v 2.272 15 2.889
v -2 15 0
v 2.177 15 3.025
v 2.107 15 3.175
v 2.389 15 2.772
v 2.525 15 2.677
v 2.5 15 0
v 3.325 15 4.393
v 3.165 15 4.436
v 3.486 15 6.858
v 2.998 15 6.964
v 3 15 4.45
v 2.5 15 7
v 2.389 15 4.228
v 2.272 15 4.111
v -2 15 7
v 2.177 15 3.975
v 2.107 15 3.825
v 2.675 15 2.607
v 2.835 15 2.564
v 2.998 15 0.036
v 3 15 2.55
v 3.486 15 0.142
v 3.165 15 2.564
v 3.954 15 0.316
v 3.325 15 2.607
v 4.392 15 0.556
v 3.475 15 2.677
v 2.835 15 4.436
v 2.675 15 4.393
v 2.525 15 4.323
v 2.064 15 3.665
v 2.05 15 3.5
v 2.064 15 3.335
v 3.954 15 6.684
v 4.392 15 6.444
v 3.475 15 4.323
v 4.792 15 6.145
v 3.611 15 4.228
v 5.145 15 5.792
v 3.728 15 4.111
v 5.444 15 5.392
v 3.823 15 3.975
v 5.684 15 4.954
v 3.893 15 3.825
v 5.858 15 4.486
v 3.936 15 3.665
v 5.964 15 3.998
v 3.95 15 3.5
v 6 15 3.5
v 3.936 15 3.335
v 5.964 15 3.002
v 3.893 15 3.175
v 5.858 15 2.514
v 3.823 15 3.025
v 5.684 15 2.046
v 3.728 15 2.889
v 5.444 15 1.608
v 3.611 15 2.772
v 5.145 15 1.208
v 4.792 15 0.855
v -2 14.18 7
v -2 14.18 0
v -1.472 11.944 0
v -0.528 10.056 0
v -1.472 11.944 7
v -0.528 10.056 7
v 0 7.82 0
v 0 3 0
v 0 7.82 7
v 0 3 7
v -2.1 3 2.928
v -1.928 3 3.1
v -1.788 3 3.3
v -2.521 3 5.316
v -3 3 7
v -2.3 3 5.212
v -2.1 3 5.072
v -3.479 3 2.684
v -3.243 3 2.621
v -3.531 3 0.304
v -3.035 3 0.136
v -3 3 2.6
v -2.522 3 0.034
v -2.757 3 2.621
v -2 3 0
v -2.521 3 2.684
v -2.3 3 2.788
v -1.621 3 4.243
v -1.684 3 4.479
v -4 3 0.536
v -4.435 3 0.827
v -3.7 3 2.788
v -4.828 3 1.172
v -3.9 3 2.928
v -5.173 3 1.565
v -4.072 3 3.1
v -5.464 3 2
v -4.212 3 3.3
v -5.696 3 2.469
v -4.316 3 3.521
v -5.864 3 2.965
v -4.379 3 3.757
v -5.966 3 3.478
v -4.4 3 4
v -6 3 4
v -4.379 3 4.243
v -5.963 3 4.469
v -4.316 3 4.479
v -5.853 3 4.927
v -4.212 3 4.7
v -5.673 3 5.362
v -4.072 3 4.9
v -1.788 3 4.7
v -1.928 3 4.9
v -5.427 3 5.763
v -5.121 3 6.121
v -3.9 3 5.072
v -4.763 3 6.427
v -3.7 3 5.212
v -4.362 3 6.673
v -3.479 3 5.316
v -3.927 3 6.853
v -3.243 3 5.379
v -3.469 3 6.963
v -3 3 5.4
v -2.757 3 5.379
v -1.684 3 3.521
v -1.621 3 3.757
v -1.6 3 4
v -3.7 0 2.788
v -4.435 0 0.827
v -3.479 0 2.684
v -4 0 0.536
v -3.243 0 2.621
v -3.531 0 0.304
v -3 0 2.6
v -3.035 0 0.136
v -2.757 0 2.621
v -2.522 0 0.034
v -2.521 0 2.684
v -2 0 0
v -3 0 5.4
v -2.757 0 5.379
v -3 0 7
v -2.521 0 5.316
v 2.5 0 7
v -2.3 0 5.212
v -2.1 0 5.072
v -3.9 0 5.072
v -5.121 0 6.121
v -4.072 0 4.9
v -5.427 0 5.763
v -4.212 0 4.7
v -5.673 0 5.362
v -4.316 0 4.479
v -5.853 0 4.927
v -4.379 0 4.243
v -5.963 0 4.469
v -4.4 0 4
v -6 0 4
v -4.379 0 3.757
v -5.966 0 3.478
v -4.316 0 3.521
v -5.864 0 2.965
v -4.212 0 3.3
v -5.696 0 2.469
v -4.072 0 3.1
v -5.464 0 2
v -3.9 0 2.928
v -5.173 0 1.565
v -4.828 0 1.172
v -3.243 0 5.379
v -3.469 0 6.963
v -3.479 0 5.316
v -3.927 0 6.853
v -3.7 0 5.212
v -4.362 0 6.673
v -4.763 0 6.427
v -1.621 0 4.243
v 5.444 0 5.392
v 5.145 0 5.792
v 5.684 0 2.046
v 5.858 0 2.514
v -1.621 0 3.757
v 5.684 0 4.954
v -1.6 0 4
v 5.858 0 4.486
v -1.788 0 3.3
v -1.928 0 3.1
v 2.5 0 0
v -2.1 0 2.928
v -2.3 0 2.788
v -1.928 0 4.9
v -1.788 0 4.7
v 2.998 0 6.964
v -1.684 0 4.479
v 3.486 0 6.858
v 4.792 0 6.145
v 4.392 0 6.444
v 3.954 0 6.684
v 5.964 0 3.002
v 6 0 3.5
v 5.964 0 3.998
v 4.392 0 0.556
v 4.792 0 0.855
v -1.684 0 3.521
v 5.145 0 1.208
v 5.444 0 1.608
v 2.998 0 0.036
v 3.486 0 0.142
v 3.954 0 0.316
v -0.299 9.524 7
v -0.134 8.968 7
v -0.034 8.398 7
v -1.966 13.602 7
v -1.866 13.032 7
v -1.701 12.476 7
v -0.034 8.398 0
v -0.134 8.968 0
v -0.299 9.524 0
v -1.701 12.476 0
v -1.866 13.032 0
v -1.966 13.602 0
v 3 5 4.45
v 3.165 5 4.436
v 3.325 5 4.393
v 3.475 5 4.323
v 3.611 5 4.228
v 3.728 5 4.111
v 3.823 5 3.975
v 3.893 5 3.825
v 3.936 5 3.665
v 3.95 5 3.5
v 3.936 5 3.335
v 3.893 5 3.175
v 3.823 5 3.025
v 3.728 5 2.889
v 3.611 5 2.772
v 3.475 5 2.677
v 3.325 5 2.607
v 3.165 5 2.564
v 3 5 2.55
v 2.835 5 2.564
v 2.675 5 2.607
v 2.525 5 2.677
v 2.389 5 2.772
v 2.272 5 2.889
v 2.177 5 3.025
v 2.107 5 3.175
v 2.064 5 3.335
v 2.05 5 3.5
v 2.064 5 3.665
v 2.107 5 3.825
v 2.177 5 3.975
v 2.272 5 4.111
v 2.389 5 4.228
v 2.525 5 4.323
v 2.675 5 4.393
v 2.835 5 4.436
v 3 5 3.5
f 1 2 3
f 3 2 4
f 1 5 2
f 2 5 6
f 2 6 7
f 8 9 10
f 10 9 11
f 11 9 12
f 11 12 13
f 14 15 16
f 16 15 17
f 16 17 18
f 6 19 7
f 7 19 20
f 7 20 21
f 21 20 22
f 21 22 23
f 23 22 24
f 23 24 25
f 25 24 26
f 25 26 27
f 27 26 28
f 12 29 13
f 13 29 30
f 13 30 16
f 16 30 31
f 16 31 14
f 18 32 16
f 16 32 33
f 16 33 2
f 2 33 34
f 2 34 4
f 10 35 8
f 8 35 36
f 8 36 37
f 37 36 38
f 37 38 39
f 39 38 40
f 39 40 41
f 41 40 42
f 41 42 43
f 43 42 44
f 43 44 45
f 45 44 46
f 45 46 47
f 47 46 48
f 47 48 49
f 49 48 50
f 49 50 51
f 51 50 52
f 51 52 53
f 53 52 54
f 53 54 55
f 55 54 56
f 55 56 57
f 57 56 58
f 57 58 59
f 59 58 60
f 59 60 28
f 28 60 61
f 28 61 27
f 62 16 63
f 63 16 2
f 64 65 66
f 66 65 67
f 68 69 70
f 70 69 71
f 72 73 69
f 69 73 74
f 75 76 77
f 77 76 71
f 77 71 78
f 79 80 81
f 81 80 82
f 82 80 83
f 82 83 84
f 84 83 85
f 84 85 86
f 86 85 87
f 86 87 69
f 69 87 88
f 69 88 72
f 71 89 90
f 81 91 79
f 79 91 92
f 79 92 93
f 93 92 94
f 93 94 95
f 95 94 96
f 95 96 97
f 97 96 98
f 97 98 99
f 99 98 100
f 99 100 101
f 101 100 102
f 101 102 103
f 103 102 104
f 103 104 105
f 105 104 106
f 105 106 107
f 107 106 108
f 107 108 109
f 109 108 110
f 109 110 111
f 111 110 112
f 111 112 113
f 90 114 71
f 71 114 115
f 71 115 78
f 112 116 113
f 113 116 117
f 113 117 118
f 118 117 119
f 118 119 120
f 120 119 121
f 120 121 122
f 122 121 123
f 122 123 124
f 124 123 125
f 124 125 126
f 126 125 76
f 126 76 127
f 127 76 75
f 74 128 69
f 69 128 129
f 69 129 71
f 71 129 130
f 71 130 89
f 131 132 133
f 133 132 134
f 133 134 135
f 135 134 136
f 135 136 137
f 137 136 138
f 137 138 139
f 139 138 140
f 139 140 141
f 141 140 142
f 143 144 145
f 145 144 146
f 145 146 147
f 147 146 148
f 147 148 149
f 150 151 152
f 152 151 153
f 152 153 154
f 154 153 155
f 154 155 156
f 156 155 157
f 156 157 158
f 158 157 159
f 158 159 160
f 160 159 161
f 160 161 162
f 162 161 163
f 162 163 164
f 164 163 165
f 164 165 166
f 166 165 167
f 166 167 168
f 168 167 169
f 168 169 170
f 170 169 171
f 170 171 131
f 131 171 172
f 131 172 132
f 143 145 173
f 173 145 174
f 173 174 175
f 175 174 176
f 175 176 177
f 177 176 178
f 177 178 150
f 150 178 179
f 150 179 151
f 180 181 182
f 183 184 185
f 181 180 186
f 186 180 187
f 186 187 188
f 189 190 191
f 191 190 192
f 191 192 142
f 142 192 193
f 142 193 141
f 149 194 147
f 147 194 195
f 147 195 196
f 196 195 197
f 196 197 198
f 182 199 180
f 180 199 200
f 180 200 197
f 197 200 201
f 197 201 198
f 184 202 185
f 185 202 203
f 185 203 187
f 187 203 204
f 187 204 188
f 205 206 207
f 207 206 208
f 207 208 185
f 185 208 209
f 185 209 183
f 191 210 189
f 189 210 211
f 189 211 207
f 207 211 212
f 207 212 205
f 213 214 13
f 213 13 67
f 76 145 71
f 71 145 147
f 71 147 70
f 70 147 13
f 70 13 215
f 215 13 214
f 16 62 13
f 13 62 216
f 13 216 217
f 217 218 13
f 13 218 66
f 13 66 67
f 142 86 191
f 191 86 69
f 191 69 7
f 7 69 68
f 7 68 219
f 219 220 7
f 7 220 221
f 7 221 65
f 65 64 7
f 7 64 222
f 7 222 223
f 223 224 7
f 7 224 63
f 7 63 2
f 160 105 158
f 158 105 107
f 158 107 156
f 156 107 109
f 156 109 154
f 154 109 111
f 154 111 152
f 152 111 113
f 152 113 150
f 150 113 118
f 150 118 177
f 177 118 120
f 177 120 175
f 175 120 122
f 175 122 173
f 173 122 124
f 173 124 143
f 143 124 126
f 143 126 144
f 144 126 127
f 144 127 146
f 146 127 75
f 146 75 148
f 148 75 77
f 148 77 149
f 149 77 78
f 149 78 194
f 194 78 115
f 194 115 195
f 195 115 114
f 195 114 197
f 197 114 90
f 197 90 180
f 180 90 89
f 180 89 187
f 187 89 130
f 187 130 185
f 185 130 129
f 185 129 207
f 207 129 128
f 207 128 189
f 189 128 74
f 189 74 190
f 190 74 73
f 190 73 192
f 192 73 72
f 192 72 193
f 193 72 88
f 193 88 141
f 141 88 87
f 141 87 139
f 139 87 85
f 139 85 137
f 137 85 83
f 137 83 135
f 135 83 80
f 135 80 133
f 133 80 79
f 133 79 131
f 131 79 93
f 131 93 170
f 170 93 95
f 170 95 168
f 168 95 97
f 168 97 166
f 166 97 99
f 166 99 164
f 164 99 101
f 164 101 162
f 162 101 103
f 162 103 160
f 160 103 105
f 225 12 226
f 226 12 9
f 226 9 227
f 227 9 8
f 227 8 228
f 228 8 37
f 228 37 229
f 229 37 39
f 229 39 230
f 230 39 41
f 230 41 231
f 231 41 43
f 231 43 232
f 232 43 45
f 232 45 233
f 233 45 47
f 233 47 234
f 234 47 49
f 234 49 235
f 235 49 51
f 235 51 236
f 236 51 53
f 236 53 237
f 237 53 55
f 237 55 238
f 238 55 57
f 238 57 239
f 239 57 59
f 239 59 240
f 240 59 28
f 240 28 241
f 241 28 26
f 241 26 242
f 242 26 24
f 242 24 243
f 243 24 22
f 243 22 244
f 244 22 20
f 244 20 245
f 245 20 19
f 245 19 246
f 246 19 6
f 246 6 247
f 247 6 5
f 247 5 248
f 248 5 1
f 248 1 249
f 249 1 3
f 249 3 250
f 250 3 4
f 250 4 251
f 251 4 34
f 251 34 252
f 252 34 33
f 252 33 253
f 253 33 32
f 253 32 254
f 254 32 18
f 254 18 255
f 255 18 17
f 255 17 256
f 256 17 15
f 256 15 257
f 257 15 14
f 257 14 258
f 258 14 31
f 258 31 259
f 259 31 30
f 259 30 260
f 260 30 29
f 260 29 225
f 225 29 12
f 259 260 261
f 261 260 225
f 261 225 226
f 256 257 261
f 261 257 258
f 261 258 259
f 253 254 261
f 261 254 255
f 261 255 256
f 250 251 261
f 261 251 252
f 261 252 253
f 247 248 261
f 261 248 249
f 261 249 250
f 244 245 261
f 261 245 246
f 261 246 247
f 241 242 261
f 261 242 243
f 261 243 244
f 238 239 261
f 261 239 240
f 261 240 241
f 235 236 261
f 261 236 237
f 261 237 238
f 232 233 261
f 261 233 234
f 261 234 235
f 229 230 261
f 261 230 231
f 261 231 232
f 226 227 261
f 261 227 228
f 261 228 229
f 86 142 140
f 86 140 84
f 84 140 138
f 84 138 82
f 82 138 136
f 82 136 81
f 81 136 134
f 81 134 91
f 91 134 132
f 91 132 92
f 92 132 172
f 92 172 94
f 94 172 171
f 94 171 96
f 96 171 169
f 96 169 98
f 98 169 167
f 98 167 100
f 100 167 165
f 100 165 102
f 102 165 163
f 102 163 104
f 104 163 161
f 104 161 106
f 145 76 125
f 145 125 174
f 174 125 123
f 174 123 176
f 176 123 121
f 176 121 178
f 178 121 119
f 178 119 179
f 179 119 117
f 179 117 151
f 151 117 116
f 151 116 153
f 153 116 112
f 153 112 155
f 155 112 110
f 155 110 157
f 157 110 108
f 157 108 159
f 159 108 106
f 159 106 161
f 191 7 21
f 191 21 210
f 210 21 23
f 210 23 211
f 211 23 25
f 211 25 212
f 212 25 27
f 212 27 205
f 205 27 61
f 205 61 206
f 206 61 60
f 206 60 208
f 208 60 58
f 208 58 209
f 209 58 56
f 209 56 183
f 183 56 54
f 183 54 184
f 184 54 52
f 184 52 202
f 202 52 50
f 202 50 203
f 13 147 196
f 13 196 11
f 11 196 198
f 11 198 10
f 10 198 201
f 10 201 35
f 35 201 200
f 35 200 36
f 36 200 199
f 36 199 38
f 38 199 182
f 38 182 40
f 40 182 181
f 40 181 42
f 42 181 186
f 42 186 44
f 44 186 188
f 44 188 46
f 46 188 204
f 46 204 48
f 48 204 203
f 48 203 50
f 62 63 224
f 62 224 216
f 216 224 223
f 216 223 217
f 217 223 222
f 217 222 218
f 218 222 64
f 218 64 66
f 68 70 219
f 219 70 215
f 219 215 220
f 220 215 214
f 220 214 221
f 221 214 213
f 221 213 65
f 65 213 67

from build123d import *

# Parameters (mm, degrees)
BOSS_EXTRU_1_DEPTH      = 7
ESQUISSE2_R             = 1.4
ENL_V_MAT_EXTRU_1_DEPTH = 16.13274595
ESQUISSE3_R             = 0.95
ENL_V_MAT_EXTRU_2_DEPTH = 10
CONG_1_R                = 4
CONG_2_R                = 3
CONG_3_R                = 3.5
CONG_4_R                = 5


with BuildPart() as part:
    # Esquisse1 → Boss.-Extru.1 (new body)
    with BuildSketch(Plane.XY):
        Polygon((-2, 13), (0, 9), (0, 3), (-6, 3), (-6, 0), (0, 0), (6, 0), (6, 15), (-2, 15), align=None)
    extrude(amount=BOSS_EXTRU_1_DEPTH)

    # Esquisse2 → Enlèv. mat.-Extru.1 (cut, through all)
    with BuildSketch(Plane(origin=(0, 3, 0), x_dir=(1, 0, 0), z_dir=(0, 1, 0))):
        with Locations(Location((-3, -4, 0), (0, 0, 180))):
            Circle(ESQUISSE2_R)
    extrude(amount=-ENL_V_MAT_EXTRU_1_DEPTH, mode=Mode.SUBTRACT)

    # Esquisse3 → Enlèv. mat.-Extru.2 (cut)
    with BuildSketch(Plane(origin=(0, 15, 0), x_dir=(1, 0, 0), z_dir=(0, 1, 0))):
        with Locations(Location((3, -3.5, 0), (0, 0, 270))):
            Circle(ESQUISSE3_R)
    extrude(amount=-ENL_V_MAT_EXTRU_2_DEPTH, mode=Mode.SUBTRACT)

    # Congé1
    cong_1_edges = [part.edges().sort_by_distance(p)[0] for p in [
        (-6, 1.5, 0),
    ]]
    fillet(cong_1_edges, radius=CONG_1_R)

    # Congé2
    cong_2_edges = [part.edges().sort_by_distance(p)[0] for p in [
        (-6, 1.5, 7),
    ]]
    fillet(cong_2_edges, radius=CONG_2_R - 0.0001)  # a hair under: the kernel refuses the full size

    # Congé3
    cong_3_edges = [part.edges().sort_by_distance(p)[0] for p in [
        (6, 7.5, 7),
        (6, 7.5, 0),
    ]]
    fillet(cong_3_edges, radius=CONG_3_R - 0.0001)  # a hair under: the kernel refuses the full size

    # Congé4
    cong_4_edges = [part.edges().sort_by_distance(p)[0] for p in [
        (0, 9, 3.5),
        (-2, 13, 3.5),
    ]]
    fillet(cong_4_edges, radius=CONG_4_R)


solid = part.part
